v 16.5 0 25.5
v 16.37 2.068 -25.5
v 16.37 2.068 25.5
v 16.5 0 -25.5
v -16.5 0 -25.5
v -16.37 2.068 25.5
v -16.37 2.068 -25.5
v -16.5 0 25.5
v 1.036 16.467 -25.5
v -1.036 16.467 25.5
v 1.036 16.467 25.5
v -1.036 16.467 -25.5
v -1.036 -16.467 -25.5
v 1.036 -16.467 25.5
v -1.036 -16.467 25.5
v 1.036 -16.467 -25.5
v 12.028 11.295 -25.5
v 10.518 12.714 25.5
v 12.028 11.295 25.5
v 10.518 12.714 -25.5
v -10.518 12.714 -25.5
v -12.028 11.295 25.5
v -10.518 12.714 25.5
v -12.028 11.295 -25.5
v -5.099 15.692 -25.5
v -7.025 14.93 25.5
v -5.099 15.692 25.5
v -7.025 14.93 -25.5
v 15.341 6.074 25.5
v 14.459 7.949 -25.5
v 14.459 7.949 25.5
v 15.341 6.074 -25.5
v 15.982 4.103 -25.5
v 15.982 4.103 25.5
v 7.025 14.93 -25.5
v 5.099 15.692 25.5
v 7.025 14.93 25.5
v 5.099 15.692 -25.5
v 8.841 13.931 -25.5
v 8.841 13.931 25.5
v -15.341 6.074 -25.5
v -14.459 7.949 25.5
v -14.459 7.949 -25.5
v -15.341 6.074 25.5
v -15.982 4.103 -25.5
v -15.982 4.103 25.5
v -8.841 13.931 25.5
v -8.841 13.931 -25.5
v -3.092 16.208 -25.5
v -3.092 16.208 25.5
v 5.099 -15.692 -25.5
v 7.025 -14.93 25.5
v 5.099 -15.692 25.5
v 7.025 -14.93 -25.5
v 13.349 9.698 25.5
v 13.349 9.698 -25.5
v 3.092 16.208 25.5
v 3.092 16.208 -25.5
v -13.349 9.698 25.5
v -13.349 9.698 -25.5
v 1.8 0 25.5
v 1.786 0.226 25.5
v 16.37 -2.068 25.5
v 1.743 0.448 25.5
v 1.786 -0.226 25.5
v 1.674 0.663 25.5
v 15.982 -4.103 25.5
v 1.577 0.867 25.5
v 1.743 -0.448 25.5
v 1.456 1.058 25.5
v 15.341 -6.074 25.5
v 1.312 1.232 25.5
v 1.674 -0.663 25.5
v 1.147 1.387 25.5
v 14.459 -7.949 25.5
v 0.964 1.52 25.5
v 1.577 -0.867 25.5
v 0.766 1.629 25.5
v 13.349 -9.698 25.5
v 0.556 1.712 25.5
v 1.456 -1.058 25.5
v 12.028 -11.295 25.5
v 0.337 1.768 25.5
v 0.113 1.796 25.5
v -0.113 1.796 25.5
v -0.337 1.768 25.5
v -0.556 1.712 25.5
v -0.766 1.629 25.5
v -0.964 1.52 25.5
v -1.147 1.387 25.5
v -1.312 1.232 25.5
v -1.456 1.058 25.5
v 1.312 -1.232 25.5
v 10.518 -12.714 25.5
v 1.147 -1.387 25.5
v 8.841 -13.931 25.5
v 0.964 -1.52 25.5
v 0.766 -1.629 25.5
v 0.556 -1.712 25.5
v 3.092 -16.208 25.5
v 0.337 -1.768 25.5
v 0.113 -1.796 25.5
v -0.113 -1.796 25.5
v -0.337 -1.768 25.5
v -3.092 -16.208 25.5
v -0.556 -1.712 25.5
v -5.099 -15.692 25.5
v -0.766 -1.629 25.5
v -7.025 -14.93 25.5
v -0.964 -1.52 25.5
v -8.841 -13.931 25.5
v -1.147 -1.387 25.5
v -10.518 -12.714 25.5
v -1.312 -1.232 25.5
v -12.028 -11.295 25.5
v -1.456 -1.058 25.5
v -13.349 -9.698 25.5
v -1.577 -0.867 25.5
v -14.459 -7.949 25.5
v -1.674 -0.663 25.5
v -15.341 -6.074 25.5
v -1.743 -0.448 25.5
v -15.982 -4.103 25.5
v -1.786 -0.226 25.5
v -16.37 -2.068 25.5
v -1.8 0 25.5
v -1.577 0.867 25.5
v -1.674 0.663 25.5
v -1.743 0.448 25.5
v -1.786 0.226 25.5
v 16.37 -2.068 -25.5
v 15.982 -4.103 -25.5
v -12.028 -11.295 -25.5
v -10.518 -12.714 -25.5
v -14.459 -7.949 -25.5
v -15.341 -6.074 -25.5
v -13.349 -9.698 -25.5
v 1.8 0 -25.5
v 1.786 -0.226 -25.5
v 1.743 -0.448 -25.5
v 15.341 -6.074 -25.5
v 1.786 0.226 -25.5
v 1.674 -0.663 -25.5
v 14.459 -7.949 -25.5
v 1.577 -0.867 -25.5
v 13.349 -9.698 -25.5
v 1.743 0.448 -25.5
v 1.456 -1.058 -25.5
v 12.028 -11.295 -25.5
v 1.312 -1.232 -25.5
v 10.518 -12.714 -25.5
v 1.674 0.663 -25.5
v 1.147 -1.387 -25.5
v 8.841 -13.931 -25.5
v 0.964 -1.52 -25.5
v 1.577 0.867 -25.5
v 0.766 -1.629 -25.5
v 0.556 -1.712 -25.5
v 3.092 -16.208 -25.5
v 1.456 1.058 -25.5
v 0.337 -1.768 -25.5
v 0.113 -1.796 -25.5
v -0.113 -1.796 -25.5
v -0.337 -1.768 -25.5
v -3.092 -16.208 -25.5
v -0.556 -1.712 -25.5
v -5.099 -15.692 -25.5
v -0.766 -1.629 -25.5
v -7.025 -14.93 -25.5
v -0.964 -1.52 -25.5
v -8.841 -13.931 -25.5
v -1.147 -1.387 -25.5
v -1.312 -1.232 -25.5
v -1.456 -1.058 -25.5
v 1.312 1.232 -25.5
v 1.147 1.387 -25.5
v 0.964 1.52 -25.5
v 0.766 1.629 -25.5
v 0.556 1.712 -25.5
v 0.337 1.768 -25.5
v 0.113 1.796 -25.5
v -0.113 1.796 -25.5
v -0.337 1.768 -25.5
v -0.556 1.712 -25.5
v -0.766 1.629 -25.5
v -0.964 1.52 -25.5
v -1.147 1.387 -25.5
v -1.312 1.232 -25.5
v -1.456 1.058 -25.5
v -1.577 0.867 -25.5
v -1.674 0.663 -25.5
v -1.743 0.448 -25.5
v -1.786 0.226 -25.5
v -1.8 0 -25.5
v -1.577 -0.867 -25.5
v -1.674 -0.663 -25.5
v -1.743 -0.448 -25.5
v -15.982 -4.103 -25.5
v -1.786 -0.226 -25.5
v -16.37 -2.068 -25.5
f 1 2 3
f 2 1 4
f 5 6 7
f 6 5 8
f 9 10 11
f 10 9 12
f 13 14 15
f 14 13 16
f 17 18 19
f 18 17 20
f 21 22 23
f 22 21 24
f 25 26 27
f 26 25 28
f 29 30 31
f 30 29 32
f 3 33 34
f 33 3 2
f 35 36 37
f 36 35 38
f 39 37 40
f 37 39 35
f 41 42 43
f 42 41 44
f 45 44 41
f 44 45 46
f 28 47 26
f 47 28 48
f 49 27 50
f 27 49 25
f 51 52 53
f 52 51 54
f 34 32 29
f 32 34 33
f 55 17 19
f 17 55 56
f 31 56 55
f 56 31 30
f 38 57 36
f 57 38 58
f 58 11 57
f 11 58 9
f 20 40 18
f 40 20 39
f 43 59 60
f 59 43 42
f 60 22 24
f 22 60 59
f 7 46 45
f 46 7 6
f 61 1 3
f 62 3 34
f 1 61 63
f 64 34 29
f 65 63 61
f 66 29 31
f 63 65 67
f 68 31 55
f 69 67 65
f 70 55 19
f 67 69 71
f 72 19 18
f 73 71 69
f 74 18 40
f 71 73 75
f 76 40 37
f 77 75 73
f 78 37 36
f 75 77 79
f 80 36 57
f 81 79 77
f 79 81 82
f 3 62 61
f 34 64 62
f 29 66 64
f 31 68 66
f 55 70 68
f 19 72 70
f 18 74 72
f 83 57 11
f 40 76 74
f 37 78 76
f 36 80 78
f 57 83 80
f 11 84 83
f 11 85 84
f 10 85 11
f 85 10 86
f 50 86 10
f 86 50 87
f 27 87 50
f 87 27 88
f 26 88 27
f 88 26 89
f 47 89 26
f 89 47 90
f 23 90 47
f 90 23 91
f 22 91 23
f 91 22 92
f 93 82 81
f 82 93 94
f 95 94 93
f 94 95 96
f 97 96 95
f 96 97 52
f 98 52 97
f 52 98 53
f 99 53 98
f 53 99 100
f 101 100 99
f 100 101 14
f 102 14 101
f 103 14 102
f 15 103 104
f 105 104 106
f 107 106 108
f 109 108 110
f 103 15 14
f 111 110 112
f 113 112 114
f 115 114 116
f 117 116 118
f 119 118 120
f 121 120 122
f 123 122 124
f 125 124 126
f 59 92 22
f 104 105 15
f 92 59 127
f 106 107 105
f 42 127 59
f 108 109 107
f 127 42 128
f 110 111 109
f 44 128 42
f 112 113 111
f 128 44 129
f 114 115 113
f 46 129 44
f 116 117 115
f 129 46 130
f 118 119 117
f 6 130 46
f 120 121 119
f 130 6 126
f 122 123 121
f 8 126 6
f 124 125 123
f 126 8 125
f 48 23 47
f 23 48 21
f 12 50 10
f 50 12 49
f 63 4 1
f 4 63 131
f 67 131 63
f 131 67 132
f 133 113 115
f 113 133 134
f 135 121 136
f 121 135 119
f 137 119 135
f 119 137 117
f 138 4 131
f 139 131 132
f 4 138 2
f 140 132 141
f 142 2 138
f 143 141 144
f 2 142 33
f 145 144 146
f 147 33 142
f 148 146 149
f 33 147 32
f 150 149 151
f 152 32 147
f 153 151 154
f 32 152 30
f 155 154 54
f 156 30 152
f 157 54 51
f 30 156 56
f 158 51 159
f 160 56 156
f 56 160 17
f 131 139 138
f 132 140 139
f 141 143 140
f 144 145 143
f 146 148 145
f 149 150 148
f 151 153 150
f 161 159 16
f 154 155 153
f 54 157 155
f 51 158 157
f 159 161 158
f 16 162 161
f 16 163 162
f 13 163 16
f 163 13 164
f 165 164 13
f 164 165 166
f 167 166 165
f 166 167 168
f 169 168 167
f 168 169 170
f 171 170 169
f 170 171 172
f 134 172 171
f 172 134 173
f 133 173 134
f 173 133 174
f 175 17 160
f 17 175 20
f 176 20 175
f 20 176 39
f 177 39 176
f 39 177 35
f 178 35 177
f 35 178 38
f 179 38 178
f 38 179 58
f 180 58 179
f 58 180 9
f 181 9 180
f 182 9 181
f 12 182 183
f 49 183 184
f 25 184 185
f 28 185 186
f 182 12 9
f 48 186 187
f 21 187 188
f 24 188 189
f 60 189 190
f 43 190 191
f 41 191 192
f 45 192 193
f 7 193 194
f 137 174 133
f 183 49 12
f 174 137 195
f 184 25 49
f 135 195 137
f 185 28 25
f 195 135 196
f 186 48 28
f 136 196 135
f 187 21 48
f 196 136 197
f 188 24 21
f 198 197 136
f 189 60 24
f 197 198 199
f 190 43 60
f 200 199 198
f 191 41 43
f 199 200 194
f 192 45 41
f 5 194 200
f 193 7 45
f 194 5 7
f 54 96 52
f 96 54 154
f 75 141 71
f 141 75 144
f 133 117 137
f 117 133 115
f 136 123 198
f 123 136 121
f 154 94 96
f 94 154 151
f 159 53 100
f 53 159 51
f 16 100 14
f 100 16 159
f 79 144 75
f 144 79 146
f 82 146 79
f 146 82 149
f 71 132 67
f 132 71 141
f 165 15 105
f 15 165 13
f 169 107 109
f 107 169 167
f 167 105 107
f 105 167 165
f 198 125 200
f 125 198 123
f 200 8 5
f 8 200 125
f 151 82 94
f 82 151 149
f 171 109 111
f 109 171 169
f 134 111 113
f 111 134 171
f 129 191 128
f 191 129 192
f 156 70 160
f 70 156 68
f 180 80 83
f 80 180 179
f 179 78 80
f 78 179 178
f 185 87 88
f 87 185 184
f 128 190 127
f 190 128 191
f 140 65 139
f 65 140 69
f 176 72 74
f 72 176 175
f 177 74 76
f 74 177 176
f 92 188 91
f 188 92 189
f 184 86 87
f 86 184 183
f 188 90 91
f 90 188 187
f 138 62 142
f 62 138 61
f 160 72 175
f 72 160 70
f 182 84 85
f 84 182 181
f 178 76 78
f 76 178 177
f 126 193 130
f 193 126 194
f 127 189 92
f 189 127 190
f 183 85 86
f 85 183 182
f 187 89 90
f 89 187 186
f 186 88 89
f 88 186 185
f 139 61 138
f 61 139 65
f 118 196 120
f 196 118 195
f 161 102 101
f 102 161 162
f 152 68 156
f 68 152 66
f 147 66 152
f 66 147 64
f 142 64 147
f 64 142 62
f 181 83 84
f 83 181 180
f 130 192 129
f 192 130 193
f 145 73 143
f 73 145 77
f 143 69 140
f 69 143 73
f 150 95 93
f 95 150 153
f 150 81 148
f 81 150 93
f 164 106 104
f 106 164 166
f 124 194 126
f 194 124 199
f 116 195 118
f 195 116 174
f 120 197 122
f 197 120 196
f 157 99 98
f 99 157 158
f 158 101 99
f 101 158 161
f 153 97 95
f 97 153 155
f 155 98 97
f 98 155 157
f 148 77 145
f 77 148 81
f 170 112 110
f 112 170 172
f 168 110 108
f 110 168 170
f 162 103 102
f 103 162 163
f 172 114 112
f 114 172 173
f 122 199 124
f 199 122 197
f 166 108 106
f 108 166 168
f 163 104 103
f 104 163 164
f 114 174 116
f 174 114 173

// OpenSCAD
$fn = 50;


difference() {
	union() {
		translate(v = [0, 0, -25.5000000000]) {
			cylinder(h = 51, r = 16.5000000000);
		}
	}
	union() {
		translate(v = [0, 0, -100.0000000000]) {
			cylinder(h = 200, r = 1.8000000000);
		}
	}
}
